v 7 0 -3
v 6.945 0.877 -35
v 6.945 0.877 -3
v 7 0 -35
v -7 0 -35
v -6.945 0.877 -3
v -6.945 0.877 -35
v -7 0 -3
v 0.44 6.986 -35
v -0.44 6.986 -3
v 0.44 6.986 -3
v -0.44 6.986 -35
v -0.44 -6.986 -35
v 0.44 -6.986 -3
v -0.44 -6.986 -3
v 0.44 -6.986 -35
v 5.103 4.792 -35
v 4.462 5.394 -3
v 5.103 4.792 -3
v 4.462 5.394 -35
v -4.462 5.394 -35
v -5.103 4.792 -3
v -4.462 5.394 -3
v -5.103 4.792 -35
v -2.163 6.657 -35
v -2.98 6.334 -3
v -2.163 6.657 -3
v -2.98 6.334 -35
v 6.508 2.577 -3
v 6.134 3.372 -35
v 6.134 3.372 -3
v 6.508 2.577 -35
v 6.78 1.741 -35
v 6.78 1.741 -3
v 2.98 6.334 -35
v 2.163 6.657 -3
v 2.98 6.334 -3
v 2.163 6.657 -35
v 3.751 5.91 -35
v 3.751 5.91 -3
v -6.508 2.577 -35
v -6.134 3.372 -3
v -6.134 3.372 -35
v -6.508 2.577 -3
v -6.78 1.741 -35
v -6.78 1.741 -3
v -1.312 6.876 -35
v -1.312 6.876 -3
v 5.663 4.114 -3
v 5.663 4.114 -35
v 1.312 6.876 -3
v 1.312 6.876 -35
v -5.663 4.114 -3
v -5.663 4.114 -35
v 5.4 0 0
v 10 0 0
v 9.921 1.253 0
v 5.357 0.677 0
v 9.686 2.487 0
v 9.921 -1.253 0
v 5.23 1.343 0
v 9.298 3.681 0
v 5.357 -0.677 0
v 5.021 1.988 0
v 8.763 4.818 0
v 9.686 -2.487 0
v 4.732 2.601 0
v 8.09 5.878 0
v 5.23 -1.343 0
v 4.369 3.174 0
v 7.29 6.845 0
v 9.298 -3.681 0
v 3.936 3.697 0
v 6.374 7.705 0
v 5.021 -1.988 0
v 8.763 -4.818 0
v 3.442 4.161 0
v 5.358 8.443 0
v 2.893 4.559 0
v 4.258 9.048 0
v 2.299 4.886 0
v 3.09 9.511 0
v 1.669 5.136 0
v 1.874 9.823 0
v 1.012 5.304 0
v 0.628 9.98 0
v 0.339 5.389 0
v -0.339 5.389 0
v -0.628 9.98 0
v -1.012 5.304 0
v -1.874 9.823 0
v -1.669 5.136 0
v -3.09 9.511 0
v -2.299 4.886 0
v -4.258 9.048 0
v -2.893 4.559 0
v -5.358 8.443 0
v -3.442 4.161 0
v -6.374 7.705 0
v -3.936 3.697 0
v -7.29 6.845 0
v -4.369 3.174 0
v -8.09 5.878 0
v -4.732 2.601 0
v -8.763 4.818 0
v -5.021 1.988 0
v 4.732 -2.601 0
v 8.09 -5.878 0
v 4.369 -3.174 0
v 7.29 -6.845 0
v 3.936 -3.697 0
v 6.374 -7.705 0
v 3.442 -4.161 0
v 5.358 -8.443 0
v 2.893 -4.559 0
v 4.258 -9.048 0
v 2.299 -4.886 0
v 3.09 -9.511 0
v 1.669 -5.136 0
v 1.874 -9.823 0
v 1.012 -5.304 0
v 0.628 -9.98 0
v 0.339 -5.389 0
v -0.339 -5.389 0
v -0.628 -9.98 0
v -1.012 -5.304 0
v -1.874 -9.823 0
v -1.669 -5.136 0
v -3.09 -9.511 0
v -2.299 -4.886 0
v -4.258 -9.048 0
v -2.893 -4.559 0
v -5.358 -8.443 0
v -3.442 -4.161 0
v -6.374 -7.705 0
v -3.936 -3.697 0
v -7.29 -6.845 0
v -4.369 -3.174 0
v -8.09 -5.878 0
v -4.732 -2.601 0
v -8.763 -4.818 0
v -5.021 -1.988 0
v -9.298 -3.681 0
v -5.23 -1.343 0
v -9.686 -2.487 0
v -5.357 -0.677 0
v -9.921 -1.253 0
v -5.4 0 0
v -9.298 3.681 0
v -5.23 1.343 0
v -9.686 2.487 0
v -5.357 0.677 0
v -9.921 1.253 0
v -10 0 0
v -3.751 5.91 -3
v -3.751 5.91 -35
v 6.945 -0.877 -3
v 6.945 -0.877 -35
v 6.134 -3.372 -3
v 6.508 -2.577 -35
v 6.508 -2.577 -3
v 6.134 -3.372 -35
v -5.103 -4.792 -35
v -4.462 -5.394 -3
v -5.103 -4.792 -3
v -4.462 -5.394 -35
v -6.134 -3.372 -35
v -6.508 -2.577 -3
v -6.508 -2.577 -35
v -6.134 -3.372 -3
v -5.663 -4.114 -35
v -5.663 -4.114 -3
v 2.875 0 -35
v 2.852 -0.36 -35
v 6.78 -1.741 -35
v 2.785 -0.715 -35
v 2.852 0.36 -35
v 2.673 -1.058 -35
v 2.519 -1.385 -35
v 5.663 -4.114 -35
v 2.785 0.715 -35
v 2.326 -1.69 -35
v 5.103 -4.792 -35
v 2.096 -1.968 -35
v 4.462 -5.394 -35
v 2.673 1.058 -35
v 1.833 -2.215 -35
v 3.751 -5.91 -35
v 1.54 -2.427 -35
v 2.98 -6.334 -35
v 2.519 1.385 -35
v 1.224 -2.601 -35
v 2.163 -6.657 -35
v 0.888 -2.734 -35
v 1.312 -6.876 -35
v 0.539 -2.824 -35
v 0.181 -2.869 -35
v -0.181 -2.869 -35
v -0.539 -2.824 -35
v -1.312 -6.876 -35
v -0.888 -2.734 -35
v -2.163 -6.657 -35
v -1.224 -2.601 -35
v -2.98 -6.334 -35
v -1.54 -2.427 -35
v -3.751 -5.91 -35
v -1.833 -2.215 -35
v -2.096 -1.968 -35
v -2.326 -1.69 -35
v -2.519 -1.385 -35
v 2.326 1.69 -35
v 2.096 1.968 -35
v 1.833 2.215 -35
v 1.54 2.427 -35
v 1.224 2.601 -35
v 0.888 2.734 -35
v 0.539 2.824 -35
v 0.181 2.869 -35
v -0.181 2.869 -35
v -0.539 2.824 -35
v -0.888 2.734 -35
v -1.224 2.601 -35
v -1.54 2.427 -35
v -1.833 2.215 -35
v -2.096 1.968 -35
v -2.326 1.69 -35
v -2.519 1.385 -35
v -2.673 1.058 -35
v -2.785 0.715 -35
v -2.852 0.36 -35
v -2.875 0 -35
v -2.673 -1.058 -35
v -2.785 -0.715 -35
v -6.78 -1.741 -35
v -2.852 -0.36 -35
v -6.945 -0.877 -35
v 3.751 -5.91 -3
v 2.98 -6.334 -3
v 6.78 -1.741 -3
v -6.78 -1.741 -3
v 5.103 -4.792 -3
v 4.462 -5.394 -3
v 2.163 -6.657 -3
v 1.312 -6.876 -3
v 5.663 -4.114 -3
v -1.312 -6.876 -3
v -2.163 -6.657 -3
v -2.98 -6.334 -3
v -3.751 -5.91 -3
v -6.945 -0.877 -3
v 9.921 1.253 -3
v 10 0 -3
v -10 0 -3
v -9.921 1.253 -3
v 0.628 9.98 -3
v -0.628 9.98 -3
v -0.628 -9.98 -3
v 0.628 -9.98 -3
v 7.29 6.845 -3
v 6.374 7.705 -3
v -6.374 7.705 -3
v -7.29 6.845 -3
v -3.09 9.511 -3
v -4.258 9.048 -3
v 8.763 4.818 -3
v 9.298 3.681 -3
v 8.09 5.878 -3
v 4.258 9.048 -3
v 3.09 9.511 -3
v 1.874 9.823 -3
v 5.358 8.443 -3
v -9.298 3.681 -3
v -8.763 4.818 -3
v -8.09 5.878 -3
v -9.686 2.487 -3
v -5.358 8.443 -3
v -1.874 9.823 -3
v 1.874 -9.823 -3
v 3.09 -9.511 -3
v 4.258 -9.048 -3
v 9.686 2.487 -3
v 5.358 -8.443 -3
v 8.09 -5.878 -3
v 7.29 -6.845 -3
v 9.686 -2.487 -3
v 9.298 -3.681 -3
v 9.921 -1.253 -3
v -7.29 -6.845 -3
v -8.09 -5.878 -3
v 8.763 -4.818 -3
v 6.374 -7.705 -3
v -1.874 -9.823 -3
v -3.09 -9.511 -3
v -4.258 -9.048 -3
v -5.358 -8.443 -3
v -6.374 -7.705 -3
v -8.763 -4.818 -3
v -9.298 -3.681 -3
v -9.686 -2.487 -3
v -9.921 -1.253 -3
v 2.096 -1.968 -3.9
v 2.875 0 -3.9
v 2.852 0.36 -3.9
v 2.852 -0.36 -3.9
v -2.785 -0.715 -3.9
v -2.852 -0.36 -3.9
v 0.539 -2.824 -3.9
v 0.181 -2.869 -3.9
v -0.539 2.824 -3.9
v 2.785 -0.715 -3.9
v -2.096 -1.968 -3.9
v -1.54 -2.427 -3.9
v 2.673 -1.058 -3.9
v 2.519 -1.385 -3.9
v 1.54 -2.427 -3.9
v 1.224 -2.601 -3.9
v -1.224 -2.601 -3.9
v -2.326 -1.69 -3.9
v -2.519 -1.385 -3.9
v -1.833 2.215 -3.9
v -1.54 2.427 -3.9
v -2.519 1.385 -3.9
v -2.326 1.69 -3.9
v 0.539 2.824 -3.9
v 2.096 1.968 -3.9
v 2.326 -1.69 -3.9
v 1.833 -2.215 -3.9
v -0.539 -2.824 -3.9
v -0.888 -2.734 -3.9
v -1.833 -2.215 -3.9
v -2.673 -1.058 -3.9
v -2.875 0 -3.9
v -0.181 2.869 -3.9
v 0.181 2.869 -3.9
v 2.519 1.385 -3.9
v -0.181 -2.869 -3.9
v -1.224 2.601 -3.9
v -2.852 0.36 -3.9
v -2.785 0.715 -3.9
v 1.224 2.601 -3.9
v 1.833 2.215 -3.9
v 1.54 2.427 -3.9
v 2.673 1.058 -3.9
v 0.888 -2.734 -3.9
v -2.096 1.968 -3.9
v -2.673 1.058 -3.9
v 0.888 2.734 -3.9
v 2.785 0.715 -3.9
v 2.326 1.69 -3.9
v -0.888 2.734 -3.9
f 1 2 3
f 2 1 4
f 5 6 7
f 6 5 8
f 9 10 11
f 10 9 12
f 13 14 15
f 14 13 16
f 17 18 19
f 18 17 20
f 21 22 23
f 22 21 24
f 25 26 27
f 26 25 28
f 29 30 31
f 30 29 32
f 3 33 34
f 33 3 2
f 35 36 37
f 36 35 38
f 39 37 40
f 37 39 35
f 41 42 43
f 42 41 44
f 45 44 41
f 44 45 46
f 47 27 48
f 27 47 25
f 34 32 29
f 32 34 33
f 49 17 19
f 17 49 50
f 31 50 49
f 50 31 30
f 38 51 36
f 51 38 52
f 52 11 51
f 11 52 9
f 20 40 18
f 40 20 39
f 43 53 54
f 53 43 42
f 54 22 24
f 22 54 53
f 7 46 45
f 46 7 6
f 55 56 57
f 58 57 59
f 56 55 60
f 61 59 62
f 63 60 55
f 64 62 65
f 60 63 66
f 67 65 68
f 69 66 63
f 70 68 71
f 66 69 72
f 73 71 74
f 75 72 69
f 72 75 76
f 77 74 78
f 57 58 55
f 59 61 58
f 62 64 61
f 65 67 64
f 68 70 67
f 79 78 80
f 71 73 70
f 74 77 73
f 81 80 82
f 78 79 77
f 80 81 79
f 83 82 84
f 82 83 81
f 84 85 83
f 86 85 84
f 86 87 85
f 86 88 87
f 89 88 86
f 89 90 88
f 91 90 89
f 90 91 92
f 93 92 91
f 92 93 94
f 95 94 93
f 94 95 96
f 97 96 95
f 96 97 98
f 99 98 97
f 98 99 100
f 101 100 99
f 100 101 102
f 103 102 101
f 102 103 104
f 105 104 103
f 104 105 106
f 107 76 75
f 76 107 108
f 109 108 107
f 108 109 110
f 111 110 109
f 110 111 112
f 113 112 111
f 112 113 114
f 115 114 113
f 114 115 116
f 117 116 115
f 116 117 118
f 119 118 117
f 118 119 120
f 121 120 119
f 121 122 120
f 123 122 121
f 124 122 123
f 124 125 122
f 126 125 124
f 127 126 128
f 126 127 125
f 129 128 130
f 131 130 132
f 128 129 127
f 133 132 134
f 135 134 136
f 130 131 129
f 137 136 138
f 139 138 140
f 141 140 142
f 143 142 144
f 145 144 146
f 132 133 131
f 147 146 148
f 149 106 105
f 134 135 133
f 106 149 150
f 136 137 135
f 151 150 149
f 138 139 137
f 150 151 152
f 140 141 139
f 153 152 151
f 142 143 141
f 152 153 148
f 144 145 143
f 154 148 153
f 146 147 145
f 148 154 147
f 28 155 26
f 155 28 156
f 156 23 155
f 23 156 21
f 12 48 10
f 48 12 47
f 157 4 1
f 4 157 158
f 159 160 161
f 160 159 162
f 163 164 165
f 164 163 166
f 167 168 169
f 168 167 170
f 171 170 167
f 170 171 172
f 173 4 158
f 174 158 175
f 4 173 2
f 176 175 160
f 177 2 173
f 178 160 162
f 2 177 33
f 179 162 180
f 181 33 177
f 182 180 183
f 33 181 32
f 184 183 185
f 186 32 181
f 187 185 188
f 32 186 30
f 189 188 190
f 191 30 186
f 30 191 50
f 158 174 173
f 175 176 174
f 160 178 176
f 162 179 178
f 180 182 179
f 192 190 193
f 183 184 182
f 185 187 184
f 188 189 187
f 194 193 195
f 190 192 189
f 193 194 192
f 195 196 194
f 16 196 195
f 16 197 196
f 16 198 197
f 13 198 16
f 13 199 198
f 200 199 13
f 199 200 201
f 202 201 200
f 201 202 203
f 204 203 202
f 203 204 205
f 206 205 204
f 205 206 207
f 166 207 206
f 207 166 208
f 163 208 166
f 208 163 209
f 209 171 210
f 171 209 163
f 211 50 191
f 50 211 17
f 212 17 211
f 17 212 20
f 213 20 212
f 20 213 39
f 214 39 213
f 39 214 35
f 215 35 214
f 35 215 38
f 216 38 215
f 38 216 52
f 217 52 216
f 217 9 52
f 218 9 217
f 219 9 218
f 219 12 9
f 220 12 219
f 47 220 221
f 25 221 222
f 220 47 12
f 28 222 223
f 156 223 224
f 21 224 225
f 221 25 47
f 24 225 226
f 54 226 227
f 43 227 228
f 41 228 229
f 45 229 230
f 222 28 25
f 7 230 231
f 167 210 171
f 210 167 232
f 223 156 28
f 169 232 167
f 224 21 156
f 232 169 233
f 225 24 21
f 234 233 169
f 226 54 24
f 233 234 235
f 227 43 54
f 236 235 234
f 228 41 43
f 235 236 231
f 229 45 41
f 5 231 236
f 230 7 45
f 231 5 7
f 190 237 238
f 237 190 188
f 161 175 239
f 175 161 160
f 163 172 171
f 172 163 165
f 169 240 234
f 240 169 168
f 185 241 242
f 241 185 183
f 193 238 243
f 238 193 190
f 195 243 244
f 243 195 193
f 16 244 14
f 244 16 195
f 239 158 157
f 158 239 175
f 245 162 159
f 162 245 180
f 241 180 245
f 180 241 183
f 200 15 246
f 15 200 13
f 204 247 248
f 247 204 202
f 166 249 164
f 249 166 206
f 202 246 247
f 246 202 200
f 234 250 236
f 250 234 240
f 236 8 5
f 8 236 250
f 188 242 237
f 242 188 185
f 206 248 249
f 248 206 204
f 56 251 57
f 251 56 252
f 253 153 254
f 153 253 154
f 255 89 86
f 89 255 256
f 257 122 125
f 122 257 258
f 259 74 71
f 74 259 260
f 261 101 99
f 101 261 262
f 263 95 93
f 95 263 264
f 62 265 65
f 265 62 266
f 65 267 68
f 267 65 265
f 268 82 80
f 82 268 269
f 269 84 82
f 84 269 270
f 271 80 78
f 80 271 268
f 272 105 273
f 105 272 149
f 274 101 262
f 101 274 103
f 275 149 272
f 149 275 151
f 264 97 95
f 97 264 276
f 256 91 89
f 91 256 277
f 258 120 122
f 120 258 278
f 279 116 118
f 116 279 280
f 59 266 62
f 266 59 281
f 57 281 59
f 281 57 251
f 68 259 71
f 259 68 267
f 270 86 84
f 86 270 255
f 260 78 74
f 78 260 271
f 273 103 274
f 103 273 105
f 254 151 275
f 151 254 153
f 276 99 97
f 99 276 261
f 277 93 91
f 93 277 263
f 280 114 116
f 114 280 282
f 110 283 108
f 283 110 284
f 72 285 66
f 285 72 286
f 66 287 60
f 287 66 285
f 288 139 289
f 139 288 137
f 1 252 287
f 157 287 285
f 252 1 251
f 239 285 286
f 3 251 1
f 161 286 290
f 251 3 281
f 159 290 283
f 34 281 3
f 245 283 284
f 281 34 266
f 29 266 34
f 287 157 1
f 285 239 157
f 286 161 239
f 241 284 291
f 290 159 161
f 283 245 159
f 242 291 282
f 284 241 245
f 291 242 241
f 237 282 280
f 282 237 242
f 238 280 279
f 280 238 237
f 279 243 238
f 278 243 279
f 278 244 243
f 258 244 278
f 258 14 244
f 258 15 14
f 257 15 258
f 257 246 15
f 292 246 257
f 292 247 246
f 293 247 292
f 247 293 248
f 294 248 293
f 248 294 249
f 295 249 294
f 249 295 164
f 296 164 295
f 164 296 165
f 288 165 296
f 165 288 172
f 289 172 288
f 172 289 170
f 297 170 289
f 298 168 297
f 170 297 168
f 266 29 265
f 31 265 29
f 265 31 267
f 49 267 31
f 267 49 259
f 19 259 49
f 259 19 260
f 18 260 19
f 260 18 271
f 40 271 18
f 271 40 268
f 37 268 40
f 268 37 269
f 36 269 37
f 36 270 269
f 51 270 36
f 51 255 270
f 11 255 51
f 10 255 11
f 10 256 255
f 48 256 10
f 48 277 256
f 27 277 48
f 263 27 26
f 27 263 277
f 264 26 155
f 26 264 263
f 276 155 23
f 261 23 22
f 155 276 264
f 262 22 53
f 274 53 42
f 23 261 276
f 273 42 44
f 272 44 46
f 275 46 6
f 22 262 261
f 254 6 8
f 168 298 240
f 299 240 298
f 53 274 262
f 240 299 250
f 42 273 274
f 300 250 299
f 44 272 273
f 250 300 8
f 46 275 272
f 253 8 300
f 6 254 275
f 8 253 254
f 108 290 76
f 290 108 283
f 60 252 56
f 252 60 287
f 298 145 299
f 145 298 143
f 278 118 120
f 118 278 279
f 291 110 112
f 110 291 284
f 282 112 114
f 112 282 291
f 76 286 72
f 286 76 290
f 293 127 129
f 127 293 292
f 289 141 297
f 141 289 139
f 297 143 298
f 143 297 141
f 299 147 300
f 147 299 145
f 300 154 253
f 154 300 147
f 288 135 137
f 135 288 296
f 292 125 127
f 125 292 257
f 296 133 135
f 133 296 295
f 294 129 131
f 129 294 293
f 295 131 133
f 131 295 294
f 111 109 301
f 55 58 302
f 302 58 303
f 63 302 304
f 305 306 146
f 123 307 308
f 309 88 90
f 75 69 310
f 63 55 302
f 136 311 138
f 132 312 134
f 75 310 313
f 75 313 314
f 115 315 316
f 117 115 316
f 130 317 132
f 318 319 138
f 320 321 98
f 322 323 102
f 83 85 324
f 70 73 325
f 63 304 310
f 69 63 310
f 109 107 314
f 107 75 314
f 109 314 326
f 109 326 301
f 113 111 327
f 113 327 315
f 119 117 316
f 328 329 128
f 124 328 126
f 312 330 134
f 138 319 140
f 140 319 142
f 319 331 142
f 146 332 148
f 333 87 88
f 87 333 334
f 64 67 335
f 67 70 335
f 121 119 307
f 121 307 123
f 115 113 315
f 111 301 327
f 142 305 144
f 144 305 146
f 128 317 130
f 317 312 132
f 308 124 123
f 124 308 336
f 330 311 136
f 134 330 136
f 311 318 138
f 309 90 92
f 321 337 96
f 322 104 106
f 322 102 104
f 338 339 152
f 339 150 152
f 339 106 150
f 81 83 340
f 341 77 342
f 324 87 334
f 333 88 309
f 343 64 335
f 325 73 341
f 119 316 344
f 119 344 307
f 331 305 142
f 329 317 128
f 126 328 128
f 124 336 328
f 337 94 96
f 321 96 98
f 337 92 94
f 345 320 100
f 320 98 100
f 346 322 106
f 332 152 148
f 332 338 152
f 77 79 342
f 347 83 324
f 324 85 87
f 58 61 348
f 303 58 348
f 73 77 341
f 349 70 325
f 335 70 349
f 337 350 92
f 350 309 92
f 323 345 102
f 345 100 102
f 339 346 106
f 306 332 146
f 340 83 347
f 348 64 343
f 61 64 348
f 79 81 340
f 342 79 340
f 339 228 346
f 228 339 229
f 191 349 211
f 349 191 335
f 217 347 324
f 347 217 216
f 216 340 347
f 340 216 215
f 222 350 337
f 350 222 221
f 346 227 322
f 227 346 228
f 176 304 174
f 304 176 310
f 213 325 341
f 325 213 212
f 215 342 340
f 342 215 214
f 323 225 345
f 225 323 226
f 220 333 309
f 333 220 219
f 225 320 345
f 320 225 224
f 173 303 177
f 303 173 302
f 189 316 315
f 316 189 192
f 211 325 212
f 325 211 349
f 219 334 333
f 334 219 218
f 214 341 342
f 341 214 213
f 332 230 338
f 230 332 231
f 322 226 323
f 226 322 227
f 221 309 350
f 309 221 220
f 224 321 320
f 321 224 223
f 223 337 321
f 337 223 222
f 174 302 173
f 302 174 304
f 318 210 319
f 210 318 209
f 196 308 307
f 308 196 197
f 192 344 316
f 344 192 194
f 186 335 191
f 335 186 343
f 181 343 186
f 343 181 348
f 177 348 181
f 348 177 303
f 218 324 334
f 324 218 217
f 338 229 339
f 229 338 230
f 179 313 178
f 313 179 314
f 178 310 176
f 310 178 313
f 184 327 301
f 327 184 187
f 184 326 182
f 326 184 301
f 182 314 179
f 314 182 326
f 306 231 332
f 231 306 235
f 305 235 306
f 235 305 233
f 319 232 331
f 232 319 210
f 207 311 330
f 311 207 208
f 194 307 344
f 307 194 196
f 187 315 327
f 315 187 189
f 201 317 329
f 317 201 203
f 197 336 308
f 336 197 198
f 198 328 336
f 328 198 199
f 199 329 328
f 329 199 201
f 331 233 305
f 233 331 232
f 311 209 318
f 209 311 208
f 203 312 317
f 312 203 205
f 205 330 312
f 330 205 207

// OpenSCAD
$fn = 50;


difference() {
	union() {
		translate(v = [0, 0, -35.0000000000]) {
			cylinder(h = 35, r = 7.0000000000);
		}
		translate(v = [0, 0, -3.0000000000]) {
			cylinder(h = 3, r = 10.0000000000);
		}
	}
	union() {
		translate(v = [0, 0, 0]) {
			rotate(a = [0, 0, 0]) {
				difference() {
					union() {
						#translate(v = [0, 0, -35.0000000000]) {
							cylinder(h = 35, r = 2.6000000000);
						}
						#translate(v = [0, 0, -3.9000000000]) {
							cylinder(h = 3.9000000000, r = 7.0000000000, r1 = 2.8750000000, r2 = 5.4000000000);
						}
						#translate(v = [0, 0, -35.0000000000]) {
							cylinder(h = 35, r = 2.8750000000);
						}
						#translate(v = [0, 0, -35.0000000000]) {
							cylinder(h = 35, r = 2.6000000000);
						}
					}
					union();
				}
			}
		}
	}
}
